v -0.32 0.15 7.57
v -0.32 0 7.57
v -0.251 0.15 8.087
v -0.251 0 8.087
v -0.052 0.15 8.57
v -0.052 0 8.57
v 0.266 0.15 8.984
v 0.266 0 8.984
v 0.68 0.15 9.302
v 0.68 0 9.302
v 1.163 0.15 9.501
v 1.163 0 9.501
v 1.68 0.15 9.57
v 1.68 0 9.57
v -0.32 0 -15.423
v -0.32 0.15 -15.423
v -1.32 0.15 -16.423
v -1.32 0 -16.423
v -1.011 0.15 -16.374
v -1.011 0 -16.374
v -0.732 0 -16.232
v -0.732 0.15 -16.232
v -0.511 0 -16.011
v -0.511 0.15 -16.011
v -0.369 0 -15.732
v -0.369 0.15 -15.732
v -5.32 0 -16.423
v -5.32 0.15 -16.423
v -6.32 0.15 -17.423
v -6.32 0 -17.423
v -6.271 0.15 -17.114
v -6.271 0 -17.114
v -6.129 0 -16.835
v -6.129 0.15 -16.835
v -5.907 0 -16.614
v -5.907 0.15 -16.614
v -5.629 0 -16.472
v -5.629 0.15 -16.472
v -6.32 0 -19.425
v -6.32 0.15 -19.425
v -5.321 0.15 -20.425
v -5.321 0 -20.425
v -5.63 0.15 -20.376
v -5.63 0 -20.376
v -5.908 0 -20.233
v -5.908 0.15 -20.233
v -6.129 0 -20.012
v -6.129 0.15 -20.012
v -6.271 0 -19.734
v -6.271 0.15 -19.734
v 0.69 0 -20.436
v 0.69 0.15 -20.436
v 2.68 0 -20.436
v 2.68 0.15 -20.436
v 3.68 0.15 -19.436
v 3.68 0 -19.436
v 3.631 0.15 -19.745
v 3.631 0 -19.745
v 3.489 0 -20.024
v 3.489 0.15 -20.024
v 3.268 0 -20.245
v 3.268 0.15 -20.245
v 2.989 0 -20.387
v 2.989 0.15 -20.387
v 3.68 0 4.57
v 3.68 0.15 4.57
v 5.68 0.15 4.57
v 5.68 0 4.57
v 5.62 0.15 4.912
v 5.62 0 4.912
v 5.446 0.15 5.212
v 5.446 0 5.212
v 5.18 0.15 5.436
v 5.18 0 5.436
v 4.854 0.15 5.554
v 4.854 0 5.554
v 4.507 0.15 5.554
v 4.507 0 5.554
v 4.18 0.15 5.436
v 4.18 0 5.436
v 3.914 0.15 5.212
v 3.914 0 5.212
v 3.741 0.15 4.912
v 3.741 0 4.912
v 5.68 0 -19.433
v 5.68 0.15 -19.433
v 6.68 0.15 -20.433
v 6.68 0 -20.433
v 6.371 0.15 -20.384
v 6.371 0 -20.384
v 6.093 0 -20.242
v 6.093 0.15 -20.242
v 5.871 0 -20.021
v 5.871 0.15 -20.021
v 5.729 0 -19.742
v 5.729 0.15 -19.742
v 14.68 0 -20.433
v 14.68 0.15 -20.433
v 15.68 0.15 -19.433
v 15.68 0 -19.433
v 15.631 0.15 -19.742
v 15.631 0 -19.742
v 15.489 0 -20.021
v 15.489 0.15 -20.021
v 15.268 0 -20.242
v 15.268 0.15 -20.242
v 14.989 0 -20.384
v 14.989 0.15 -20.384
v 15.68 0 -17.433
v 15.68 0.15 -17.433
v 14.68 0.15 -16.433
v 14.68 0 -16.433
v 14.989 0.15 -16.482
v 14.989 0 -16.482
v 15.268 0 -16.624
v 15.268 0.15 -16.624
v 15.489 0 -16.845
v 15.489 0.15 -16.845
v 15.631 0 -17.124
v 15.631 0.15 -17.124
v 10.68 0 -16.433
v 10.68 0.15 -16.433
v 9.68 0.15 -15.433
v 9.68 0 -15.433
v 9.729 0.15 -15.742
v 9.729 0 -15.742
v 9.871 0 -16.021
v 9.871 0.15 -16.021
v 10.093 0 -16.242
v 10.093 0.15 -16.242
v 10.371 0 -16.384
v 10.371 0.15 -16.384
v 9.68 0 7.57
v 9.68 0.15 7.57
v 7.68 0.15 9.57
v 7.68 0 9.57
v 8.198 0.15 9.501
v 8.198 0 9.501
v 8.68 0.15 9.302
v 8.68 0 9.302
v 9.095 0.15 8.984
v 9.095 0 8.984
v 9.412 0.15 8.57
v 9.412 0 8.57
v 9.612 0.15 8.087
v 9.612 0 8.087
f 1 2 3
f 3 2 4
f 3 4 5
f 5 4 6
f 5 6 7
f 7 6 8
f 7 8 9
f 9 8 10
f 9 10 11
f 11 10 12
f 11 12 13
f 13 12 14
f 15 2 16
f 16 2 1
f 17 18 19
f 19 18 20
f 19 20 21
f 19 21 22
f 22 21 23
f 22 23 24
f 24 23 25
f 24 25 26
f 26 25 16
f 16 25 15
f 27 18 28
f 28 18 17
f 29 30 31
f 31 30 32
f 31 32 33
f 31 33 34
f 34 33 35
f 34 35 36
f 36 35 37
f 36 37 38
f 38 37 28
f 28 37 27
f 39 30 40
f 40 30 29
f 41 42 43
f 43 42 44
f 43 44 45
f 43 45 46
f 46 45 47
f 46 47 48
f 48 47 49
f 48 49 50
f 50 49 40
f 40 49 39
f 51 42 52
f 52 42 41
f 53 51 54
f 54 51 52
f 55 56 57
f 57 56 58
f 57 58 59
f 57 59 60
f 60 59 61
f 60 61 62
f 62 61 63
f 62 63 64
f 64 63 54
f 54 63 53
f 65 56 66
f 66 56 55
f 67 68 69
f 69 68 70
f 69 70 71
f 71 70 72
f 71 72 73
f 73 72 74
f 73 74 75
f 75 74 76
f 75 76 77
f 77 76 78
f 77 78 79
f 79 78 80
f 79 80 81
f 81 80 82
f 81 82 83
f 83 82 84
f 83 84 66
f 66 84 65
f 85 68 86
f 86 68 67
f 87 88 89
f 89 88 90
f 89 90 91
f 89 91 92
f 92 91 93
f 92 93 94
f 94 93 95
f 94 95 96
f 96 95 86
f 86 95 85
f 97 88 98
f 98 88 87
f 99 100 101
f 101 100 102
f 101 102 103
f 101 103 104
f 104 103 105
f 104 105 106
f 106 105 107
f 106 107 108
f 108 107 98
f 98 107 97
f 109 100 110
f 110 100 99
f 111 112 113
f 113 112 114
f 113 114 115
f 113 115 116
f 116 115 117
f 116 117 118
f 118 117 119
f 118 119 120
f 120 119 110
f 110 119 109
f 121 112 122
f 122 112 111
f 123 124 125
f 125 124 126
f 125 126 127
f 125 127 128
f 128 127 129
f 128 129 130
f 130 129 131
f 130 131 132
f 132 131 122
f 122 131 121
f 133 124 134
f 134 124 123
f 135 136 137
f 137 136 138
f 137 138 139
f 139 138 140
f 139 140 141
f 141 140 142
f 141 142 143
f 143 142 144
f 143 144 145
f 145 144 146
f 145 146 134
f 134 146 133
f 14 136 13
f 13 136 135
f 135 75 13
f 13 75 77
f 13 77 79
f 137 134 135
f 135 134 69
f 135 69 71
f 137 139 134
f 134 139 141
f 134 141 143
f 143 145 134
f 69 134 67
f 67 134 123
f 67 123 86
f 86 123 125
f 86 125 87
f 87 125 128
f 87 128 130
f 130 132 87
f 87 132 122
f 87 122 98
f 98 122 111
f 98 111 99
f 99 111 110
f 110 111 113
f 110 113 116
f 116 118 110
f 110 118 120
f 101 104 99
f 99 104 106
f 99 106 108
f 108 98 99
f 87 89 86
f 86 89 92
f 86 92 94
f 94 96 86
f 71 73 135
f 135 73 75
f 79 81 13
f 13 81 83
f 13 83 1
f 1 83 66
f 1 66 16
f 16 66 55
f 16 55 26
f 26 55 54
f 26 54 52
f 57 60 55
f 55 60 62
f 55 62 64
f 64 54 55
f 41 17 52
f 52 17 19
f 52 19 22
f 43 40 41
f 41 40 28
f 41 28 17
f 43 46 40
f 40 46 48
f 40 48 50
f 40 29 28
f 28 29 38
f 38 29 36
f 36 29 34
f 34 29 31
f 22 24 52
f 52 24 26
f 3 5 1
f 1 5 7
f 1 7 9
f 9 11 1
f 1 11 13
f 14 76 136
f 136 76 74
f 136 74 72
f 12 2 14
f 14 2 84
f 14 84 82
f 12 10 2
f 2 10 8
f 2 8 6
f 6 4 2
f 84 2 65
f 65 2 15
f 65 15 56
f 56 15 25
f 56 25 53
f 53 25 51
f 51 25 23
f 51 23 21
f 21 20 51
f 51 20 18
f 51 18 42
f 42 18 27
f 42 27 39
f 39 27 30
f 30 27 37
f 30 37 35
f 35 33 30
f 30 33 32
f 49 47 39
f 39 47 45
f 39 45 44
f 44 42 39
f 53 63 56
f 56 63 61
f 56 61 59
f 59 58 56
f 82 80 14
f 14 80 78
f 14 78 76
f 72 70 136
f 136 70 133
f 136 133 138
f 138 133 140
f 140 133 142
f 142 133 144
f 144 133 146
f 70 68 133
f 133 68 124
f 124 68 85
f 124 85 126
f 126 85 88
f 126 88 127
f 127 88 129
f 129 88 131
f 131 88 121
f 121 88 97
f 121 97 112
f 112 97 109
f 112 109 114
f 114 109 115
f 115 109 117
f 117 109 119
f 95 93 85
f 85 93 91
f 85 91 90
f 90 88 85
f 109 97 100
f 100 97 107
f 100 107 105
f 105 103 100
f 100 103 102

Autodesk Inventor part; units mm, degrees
ref_plane "YZ Plane" through (0, 0, 0) normal (1, 0, 0) x (0, 1, 0)
ref_plane "XZ Plane" through (0, 0, 0) normal (0, 1, 0) x (-1, 0, 0)
ref_plane "XY Plane" through (0, 0, 0) normal (0, 0, 1) x (1, 0, 0)
sketch "Sketch1" plane through (0, 0, 0) normal (0, 1, 0) x (-1, 0, 0)
  line L0 (-7.6804, 9.5695) -> (-1.6804, 9.5695)
  line L1 (-4.6804, 5.5695) -> (-4.6804, 5.5695)
  line L2 (-0.6897, -20.436) -> (5.3214, -20.425)
  line L3 (-0.6897, -20.436) -> (-2.6847, -20.4274)
  line L4 (-3.6804, -19.4275) -> (-3.6804, 4.5695)
  line L5 (-5.6804, 4.5695) -> (-5.6804, -19.4328)
  line L6 (0.3196, 7.5695) -> (0.3196, -12.405)
  line L7 (-6.6804, -20.4328) -> (-14.6804, -20.4328)
  line L8 (-9.6804, 7.5695) -> (-9.6804, -12.4328)
  arc A0 (-7.6804, 9.5695) -> (-9.6804, 7.5695) centre (-7.6804, 7.5695) ccw
  arc A1 (0.3196, 7.5695) -> (-1.6804, 9.5695) centre (-1.6804, 7.5695) ccw
  line L9 (6.3196, -19.425) -> (6.3196, -17.4232)
  line L10 (5.3196, -16.4232) -> (1.3196, -16.4232)
  line L11 (0.3196, -15.4232) -> (0.3196, -8.8508)
  line L12 (-15.6804, -19.4328) -> (-15.6804, -17.4328)
  line L13 (-14.6804, -16.4328) -> (-10.6804, -16.4328)
  line L14 (-9.6804, -15.4328) -> (-9.6804, -12.4328)
  arc A2 (-10.6804, -16.4328) -> (-9.6804, -15.4328) centre (-10.6804, -15.4328) ccw
  arc A3 (-14.6804, -16.4328) -> (-15.6804, -17.4328) centre (-14.6804, -17.4328) ccw
  arc A4 (-15.6804, -19.4328) -> (-14.6804, -20.4328) centre (-14.6804, -19.4328) ccw
  arc A5 (-6.6804, -20.4328) -> (-5.6804, -19.4328) centre (-6.6804, -19.4328) ccw
  arc A6 (-3.6804, -19.4275) -> (-2.6847, -20.4274) centre (-2.6804, -19.4275) ccw
  arc A7 (5.3214, -20.425) -> (6.3196, -19.425) centre (5.3196, -19.425) ccw
  arc A8 (6.3196, -17.4232) -> (5.3196, -16.4232) centre (5.3196, -17.4232) ccw
  arc A9 (0.3196, -15.4232) -> (1.3196, -16.4232) centre (1.3196, -15.4232) ccw
  arc A10 (-4.6804, 5.5695) -> (-5.6804, 4.5695) centre (-4.6804, 4.5695) ccw
  arc A11 (-3.6804, 4.5695) -> (-4.6804, 5.5695) centre (-4.6804, 4.5695) ccw
  point P0 (0, 0)
  point P1 (6.3196, -20.4232)
  point P2 (-3.6804, -20.4232)
  point P3 (-15.6804, -20.4328)
  point P4 (-4.6804, 9.5695)
  point P5 (-4.6804, 5.5695)
  point P6 (2.3159, -20.4305)
  point P7 (6.3196, -16.4232)
  point P8 (-15.6804, -16.4328)
  point P9 (0.3196, -12.405)
  point P10 (-15.6804, -18.4328)
  point P11 (6.3196, -18.4241)
  dimension "d0" = 10
  dimension "d2" = 4
  dimension "d3" = 4
  dimension "d4" = 2
  dimension "d5" = 4
  dimension "d6" = 30
  dimension "d7" = 2
  dimension "d8" = 4
  dimension "d9" = 4
  dimension "d10" = 1
  dimension "d11" = 1
  dimension "d14" = 22
extrude "Extrusion1" add sketch "Sketch1" along normal blind 0.15
